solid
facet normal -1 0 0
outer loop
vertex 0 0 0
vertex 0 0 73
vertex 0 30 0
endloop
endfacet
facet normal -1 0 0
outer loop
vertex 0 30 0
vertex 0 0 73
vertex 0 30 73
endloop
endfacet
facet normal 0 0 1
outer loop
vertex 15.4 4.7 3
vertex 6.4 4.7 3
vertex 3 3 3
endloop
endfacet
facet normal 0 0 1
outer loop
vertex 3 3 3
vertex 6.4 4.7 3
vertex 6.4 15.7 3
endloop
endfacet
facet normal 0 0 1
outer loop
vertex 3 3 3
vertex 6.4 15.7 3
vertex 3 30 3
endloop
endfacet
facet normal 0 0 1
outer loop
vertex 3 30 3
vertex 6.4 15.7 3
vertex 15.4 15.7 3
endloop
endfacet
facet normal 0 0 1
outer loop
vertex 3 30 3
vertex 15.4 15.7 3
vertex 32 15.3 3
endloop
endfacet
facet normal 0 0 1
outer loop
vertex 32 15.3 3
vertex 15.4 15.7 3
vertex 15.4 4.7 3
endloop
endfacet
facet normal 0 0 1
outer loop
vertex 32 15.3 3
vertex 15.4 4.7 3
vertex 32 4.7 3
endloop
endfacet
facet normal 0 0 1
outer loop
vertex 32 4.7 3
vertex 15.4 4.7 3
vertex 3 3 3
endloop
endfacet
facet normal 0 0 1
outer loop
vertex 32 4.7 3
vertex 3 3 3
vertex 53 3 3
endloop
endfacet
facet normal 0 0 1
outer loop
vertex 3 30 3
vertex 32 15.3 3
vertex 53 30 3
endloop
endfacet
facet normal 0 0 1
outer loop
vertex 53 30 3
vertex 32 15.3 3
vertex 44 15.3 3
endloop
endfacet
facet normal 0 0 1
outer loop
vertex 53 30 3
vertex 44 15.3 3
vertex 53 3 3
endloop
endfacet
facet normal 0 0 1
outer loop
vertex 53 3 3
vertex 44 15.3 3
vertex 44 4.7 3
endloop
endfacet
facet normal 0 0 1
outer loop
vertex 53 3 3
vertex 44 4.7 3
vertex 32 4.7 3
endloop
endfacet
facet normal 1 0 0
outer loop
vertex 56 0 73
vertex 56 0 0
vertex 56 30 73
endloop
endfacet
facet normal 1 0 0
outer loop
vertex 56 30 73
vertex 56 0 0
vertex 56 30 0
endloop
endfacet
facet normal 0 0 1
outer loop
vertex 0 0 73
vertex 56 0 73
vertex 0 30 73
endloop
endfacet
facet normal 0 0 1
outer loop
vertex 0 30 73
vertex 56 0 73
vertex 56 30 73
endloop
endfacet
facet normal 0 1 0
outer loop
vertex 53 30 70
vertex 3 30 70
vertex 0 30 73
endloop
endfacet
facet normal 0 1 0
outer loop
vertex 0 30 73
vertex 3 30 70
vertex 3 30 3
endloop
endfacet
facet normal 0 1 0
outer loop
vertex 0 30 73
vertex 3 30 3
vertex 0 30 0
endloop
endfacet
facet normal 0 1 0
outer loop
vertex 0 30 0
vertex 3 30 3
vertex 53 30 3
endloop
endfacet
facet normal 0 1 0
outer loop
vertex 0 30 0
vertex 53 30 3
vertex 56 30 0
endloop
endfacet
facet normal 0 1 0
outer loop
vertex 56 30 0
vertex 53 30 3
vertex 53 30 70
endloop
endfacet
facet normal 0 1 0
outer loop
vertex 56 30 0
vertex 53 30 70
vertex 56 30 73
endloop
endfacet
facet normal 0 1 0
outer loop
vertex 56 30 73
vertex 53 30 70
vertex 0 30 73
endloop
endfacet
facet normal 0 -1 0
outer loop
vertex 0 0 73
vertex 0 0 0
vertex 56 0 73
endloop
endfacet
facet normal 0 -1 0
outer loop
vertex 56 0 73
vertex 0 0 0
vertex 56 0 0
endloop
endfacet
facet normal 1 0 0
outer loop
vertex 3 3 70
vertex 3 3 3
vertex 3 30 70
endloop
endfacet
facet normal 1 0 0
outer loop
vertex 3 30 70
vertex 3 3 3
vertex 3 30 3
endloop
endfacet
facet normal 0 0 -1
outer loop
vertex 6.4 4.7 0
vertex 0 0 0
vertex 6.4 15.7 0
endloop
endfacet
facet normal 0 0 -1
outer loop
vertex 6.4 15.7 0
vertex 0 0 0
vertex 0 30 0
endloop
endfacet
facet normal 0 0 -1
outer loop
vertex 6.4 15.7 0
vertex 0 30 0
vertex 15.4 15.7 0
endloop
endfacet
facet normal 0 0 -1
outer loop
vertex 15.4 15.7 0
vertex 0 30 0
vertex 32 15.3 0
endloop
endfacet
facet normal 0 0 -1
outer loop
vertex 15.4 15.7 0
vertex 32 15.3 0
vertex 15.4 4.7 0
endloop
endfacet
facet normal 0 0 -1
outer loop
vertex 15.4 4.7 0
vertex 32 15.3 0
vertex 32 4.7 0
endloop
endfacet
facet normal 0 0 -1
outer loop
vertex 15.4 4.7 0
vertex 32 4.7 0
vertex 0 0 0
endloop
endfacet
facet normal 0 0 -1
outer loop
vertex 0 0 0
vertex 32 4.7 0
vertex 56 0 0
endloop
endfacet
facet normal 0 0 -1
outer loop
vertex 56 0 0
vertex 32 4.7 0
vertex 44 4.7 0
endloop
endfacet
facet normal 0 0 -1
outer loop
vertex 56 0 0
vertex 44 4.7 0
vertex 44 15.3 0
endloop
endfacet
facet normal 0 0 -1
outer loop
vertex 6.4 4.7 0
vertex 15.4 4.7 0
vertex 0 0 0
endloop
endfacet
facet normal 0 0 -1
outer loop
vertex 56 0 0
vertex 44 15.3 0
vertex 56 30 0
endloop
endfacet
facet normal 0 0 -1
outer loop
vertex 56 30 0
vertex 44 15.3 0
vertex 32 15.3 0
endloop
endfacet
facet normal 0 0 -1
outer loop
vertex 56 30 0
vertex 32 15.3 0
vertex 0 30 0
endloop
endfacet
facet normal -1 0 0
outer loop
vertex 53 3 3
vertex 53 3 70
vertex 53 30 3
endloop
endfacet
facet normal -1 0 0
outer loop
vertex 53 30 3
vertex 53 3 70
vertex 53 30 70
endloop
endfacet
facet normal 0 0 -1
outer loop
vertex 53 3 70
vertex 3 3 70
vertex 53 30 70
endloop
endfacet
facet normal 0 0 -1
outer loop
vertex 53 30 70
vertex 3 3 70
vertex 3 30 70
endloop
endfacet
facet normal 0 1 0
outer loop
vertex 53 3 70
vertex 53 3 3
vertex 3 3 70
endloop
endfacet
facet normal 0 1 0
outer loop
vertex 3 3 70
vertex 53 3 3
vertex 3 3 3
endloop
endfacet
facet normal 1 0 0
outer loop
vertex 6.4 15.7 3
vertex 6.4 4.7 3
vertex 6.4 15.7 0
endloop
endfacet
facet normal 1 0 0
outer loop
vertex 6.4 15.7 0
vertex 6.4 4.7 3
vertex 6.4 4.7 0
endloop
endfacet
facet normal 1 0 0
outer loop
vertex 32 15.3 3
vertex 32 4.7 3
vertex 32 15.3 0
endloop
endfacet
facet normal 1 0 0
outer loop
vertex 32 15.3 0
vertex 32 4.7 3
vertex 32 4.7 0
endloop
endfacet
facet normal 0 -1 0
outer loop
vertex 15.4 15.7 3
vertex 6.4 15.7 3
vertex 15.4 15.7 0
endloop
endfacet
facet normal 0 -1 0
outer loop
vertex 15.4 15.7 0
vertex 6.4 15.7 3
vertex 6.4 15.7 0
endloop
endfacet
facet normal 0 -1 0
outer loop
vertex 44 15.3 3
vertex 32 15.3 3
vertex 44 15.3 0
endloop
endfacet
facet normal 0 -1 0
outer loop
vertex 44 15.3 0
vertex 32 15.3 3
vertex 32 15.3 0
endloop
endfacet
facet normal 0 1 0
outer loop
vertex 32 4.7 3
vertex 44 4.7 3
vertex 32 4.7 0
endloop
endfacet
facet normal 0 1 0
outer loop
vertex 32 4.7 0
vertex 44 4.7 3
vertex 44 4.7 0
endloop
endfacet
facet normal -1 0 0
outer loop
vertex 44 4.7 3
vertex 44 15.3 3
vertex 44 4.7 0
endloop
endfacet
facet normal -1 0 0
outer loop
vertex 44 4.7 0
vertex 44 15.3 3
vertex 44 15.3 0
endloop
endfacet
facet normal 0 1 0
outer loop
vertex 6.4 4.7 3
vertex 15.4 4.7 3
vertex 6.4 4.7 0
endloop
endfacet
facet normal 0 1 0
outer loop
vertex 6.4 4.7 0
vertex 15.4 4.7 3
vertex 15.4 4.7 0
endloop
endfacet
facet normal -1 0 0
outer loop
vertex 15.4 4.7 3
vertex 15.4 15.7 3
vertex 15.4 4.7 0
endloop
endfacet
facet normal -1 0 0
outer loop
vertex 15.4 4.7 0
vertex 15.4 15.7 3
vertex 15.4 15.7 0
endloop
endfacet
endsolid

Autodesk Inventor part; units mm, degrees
ref_plane "YZ Plane" through (0, 0, 0) normal (1, 0, 0) x (0, 1, 0)
ref_plane "XZ Plane" through (0, 0, 0) normal (0, 1, 0) x (-1, 0, 0)
ref_plane "XY Plane" through (0, 0, 0) normal (0, 0, 1) x (1, 0, 0)
sketch "Sketch2" plane through (0, 0, 0) normal (0, 1, 0) x (-1, 0, 0)
  line L0 (0, 0) -> (-56, 0)
  line L1 (-56, 0) -> (-56, 73)
  line L2 (-56, 73) -> (0, 73)
  line L3 (0, 73) -> (0, 0)
  dimension "d0" = 56
  dimension "d1" = 73
extrude "Extrusion1" add sketch "Sketch2" along normal blind 30
shell "Shell1" thickness 3 removed faces 1 at (18.6667, 30, 24.3333)
sketch "Sketch3" plane through (56, 0, 0) normal (0, 0, -1) x (-1, 0, 0)
  line L0 (12, 15.3) -> (24, 15.3)
  line L1 (24, 15.3) -> (24, 4.7)
  line L2 (24, 4.7) -> (12, 4.7)
  line L3 (12, 4.7) -> (12, 15.3)
  line L4 (0, 0) -> (0, 30) projected
  line L5 (0, 0) -> (56, 0) projected
  line L6 (40.6, 15.7) -> (49.6, 15.7)
  line L7 (49.6, 15.7) -> (49.6, 4.7)
  line L8 (49.6, 4.7) -> (40.6, 4.7)
  line L9 (40.6, 4.7) -> (40.6, 15.7)
  line L10 (56, 0) -> (56, 30) projected
  dimension "d5" = 12
  dimension "d6" = 4.7
  dimension "d7" = 12
  dimension "d8" = 10.6
  dimension "d9" = 6.4
  dimension "d10" = 9
  dimension "d11" = 11
  dimension "d12" = 4.7
extrude "Extrusion2" cut sketch "Sketch3" against normal blind 30
equation "\"d12\" = d6"
properties part number "arduino array box v01"
